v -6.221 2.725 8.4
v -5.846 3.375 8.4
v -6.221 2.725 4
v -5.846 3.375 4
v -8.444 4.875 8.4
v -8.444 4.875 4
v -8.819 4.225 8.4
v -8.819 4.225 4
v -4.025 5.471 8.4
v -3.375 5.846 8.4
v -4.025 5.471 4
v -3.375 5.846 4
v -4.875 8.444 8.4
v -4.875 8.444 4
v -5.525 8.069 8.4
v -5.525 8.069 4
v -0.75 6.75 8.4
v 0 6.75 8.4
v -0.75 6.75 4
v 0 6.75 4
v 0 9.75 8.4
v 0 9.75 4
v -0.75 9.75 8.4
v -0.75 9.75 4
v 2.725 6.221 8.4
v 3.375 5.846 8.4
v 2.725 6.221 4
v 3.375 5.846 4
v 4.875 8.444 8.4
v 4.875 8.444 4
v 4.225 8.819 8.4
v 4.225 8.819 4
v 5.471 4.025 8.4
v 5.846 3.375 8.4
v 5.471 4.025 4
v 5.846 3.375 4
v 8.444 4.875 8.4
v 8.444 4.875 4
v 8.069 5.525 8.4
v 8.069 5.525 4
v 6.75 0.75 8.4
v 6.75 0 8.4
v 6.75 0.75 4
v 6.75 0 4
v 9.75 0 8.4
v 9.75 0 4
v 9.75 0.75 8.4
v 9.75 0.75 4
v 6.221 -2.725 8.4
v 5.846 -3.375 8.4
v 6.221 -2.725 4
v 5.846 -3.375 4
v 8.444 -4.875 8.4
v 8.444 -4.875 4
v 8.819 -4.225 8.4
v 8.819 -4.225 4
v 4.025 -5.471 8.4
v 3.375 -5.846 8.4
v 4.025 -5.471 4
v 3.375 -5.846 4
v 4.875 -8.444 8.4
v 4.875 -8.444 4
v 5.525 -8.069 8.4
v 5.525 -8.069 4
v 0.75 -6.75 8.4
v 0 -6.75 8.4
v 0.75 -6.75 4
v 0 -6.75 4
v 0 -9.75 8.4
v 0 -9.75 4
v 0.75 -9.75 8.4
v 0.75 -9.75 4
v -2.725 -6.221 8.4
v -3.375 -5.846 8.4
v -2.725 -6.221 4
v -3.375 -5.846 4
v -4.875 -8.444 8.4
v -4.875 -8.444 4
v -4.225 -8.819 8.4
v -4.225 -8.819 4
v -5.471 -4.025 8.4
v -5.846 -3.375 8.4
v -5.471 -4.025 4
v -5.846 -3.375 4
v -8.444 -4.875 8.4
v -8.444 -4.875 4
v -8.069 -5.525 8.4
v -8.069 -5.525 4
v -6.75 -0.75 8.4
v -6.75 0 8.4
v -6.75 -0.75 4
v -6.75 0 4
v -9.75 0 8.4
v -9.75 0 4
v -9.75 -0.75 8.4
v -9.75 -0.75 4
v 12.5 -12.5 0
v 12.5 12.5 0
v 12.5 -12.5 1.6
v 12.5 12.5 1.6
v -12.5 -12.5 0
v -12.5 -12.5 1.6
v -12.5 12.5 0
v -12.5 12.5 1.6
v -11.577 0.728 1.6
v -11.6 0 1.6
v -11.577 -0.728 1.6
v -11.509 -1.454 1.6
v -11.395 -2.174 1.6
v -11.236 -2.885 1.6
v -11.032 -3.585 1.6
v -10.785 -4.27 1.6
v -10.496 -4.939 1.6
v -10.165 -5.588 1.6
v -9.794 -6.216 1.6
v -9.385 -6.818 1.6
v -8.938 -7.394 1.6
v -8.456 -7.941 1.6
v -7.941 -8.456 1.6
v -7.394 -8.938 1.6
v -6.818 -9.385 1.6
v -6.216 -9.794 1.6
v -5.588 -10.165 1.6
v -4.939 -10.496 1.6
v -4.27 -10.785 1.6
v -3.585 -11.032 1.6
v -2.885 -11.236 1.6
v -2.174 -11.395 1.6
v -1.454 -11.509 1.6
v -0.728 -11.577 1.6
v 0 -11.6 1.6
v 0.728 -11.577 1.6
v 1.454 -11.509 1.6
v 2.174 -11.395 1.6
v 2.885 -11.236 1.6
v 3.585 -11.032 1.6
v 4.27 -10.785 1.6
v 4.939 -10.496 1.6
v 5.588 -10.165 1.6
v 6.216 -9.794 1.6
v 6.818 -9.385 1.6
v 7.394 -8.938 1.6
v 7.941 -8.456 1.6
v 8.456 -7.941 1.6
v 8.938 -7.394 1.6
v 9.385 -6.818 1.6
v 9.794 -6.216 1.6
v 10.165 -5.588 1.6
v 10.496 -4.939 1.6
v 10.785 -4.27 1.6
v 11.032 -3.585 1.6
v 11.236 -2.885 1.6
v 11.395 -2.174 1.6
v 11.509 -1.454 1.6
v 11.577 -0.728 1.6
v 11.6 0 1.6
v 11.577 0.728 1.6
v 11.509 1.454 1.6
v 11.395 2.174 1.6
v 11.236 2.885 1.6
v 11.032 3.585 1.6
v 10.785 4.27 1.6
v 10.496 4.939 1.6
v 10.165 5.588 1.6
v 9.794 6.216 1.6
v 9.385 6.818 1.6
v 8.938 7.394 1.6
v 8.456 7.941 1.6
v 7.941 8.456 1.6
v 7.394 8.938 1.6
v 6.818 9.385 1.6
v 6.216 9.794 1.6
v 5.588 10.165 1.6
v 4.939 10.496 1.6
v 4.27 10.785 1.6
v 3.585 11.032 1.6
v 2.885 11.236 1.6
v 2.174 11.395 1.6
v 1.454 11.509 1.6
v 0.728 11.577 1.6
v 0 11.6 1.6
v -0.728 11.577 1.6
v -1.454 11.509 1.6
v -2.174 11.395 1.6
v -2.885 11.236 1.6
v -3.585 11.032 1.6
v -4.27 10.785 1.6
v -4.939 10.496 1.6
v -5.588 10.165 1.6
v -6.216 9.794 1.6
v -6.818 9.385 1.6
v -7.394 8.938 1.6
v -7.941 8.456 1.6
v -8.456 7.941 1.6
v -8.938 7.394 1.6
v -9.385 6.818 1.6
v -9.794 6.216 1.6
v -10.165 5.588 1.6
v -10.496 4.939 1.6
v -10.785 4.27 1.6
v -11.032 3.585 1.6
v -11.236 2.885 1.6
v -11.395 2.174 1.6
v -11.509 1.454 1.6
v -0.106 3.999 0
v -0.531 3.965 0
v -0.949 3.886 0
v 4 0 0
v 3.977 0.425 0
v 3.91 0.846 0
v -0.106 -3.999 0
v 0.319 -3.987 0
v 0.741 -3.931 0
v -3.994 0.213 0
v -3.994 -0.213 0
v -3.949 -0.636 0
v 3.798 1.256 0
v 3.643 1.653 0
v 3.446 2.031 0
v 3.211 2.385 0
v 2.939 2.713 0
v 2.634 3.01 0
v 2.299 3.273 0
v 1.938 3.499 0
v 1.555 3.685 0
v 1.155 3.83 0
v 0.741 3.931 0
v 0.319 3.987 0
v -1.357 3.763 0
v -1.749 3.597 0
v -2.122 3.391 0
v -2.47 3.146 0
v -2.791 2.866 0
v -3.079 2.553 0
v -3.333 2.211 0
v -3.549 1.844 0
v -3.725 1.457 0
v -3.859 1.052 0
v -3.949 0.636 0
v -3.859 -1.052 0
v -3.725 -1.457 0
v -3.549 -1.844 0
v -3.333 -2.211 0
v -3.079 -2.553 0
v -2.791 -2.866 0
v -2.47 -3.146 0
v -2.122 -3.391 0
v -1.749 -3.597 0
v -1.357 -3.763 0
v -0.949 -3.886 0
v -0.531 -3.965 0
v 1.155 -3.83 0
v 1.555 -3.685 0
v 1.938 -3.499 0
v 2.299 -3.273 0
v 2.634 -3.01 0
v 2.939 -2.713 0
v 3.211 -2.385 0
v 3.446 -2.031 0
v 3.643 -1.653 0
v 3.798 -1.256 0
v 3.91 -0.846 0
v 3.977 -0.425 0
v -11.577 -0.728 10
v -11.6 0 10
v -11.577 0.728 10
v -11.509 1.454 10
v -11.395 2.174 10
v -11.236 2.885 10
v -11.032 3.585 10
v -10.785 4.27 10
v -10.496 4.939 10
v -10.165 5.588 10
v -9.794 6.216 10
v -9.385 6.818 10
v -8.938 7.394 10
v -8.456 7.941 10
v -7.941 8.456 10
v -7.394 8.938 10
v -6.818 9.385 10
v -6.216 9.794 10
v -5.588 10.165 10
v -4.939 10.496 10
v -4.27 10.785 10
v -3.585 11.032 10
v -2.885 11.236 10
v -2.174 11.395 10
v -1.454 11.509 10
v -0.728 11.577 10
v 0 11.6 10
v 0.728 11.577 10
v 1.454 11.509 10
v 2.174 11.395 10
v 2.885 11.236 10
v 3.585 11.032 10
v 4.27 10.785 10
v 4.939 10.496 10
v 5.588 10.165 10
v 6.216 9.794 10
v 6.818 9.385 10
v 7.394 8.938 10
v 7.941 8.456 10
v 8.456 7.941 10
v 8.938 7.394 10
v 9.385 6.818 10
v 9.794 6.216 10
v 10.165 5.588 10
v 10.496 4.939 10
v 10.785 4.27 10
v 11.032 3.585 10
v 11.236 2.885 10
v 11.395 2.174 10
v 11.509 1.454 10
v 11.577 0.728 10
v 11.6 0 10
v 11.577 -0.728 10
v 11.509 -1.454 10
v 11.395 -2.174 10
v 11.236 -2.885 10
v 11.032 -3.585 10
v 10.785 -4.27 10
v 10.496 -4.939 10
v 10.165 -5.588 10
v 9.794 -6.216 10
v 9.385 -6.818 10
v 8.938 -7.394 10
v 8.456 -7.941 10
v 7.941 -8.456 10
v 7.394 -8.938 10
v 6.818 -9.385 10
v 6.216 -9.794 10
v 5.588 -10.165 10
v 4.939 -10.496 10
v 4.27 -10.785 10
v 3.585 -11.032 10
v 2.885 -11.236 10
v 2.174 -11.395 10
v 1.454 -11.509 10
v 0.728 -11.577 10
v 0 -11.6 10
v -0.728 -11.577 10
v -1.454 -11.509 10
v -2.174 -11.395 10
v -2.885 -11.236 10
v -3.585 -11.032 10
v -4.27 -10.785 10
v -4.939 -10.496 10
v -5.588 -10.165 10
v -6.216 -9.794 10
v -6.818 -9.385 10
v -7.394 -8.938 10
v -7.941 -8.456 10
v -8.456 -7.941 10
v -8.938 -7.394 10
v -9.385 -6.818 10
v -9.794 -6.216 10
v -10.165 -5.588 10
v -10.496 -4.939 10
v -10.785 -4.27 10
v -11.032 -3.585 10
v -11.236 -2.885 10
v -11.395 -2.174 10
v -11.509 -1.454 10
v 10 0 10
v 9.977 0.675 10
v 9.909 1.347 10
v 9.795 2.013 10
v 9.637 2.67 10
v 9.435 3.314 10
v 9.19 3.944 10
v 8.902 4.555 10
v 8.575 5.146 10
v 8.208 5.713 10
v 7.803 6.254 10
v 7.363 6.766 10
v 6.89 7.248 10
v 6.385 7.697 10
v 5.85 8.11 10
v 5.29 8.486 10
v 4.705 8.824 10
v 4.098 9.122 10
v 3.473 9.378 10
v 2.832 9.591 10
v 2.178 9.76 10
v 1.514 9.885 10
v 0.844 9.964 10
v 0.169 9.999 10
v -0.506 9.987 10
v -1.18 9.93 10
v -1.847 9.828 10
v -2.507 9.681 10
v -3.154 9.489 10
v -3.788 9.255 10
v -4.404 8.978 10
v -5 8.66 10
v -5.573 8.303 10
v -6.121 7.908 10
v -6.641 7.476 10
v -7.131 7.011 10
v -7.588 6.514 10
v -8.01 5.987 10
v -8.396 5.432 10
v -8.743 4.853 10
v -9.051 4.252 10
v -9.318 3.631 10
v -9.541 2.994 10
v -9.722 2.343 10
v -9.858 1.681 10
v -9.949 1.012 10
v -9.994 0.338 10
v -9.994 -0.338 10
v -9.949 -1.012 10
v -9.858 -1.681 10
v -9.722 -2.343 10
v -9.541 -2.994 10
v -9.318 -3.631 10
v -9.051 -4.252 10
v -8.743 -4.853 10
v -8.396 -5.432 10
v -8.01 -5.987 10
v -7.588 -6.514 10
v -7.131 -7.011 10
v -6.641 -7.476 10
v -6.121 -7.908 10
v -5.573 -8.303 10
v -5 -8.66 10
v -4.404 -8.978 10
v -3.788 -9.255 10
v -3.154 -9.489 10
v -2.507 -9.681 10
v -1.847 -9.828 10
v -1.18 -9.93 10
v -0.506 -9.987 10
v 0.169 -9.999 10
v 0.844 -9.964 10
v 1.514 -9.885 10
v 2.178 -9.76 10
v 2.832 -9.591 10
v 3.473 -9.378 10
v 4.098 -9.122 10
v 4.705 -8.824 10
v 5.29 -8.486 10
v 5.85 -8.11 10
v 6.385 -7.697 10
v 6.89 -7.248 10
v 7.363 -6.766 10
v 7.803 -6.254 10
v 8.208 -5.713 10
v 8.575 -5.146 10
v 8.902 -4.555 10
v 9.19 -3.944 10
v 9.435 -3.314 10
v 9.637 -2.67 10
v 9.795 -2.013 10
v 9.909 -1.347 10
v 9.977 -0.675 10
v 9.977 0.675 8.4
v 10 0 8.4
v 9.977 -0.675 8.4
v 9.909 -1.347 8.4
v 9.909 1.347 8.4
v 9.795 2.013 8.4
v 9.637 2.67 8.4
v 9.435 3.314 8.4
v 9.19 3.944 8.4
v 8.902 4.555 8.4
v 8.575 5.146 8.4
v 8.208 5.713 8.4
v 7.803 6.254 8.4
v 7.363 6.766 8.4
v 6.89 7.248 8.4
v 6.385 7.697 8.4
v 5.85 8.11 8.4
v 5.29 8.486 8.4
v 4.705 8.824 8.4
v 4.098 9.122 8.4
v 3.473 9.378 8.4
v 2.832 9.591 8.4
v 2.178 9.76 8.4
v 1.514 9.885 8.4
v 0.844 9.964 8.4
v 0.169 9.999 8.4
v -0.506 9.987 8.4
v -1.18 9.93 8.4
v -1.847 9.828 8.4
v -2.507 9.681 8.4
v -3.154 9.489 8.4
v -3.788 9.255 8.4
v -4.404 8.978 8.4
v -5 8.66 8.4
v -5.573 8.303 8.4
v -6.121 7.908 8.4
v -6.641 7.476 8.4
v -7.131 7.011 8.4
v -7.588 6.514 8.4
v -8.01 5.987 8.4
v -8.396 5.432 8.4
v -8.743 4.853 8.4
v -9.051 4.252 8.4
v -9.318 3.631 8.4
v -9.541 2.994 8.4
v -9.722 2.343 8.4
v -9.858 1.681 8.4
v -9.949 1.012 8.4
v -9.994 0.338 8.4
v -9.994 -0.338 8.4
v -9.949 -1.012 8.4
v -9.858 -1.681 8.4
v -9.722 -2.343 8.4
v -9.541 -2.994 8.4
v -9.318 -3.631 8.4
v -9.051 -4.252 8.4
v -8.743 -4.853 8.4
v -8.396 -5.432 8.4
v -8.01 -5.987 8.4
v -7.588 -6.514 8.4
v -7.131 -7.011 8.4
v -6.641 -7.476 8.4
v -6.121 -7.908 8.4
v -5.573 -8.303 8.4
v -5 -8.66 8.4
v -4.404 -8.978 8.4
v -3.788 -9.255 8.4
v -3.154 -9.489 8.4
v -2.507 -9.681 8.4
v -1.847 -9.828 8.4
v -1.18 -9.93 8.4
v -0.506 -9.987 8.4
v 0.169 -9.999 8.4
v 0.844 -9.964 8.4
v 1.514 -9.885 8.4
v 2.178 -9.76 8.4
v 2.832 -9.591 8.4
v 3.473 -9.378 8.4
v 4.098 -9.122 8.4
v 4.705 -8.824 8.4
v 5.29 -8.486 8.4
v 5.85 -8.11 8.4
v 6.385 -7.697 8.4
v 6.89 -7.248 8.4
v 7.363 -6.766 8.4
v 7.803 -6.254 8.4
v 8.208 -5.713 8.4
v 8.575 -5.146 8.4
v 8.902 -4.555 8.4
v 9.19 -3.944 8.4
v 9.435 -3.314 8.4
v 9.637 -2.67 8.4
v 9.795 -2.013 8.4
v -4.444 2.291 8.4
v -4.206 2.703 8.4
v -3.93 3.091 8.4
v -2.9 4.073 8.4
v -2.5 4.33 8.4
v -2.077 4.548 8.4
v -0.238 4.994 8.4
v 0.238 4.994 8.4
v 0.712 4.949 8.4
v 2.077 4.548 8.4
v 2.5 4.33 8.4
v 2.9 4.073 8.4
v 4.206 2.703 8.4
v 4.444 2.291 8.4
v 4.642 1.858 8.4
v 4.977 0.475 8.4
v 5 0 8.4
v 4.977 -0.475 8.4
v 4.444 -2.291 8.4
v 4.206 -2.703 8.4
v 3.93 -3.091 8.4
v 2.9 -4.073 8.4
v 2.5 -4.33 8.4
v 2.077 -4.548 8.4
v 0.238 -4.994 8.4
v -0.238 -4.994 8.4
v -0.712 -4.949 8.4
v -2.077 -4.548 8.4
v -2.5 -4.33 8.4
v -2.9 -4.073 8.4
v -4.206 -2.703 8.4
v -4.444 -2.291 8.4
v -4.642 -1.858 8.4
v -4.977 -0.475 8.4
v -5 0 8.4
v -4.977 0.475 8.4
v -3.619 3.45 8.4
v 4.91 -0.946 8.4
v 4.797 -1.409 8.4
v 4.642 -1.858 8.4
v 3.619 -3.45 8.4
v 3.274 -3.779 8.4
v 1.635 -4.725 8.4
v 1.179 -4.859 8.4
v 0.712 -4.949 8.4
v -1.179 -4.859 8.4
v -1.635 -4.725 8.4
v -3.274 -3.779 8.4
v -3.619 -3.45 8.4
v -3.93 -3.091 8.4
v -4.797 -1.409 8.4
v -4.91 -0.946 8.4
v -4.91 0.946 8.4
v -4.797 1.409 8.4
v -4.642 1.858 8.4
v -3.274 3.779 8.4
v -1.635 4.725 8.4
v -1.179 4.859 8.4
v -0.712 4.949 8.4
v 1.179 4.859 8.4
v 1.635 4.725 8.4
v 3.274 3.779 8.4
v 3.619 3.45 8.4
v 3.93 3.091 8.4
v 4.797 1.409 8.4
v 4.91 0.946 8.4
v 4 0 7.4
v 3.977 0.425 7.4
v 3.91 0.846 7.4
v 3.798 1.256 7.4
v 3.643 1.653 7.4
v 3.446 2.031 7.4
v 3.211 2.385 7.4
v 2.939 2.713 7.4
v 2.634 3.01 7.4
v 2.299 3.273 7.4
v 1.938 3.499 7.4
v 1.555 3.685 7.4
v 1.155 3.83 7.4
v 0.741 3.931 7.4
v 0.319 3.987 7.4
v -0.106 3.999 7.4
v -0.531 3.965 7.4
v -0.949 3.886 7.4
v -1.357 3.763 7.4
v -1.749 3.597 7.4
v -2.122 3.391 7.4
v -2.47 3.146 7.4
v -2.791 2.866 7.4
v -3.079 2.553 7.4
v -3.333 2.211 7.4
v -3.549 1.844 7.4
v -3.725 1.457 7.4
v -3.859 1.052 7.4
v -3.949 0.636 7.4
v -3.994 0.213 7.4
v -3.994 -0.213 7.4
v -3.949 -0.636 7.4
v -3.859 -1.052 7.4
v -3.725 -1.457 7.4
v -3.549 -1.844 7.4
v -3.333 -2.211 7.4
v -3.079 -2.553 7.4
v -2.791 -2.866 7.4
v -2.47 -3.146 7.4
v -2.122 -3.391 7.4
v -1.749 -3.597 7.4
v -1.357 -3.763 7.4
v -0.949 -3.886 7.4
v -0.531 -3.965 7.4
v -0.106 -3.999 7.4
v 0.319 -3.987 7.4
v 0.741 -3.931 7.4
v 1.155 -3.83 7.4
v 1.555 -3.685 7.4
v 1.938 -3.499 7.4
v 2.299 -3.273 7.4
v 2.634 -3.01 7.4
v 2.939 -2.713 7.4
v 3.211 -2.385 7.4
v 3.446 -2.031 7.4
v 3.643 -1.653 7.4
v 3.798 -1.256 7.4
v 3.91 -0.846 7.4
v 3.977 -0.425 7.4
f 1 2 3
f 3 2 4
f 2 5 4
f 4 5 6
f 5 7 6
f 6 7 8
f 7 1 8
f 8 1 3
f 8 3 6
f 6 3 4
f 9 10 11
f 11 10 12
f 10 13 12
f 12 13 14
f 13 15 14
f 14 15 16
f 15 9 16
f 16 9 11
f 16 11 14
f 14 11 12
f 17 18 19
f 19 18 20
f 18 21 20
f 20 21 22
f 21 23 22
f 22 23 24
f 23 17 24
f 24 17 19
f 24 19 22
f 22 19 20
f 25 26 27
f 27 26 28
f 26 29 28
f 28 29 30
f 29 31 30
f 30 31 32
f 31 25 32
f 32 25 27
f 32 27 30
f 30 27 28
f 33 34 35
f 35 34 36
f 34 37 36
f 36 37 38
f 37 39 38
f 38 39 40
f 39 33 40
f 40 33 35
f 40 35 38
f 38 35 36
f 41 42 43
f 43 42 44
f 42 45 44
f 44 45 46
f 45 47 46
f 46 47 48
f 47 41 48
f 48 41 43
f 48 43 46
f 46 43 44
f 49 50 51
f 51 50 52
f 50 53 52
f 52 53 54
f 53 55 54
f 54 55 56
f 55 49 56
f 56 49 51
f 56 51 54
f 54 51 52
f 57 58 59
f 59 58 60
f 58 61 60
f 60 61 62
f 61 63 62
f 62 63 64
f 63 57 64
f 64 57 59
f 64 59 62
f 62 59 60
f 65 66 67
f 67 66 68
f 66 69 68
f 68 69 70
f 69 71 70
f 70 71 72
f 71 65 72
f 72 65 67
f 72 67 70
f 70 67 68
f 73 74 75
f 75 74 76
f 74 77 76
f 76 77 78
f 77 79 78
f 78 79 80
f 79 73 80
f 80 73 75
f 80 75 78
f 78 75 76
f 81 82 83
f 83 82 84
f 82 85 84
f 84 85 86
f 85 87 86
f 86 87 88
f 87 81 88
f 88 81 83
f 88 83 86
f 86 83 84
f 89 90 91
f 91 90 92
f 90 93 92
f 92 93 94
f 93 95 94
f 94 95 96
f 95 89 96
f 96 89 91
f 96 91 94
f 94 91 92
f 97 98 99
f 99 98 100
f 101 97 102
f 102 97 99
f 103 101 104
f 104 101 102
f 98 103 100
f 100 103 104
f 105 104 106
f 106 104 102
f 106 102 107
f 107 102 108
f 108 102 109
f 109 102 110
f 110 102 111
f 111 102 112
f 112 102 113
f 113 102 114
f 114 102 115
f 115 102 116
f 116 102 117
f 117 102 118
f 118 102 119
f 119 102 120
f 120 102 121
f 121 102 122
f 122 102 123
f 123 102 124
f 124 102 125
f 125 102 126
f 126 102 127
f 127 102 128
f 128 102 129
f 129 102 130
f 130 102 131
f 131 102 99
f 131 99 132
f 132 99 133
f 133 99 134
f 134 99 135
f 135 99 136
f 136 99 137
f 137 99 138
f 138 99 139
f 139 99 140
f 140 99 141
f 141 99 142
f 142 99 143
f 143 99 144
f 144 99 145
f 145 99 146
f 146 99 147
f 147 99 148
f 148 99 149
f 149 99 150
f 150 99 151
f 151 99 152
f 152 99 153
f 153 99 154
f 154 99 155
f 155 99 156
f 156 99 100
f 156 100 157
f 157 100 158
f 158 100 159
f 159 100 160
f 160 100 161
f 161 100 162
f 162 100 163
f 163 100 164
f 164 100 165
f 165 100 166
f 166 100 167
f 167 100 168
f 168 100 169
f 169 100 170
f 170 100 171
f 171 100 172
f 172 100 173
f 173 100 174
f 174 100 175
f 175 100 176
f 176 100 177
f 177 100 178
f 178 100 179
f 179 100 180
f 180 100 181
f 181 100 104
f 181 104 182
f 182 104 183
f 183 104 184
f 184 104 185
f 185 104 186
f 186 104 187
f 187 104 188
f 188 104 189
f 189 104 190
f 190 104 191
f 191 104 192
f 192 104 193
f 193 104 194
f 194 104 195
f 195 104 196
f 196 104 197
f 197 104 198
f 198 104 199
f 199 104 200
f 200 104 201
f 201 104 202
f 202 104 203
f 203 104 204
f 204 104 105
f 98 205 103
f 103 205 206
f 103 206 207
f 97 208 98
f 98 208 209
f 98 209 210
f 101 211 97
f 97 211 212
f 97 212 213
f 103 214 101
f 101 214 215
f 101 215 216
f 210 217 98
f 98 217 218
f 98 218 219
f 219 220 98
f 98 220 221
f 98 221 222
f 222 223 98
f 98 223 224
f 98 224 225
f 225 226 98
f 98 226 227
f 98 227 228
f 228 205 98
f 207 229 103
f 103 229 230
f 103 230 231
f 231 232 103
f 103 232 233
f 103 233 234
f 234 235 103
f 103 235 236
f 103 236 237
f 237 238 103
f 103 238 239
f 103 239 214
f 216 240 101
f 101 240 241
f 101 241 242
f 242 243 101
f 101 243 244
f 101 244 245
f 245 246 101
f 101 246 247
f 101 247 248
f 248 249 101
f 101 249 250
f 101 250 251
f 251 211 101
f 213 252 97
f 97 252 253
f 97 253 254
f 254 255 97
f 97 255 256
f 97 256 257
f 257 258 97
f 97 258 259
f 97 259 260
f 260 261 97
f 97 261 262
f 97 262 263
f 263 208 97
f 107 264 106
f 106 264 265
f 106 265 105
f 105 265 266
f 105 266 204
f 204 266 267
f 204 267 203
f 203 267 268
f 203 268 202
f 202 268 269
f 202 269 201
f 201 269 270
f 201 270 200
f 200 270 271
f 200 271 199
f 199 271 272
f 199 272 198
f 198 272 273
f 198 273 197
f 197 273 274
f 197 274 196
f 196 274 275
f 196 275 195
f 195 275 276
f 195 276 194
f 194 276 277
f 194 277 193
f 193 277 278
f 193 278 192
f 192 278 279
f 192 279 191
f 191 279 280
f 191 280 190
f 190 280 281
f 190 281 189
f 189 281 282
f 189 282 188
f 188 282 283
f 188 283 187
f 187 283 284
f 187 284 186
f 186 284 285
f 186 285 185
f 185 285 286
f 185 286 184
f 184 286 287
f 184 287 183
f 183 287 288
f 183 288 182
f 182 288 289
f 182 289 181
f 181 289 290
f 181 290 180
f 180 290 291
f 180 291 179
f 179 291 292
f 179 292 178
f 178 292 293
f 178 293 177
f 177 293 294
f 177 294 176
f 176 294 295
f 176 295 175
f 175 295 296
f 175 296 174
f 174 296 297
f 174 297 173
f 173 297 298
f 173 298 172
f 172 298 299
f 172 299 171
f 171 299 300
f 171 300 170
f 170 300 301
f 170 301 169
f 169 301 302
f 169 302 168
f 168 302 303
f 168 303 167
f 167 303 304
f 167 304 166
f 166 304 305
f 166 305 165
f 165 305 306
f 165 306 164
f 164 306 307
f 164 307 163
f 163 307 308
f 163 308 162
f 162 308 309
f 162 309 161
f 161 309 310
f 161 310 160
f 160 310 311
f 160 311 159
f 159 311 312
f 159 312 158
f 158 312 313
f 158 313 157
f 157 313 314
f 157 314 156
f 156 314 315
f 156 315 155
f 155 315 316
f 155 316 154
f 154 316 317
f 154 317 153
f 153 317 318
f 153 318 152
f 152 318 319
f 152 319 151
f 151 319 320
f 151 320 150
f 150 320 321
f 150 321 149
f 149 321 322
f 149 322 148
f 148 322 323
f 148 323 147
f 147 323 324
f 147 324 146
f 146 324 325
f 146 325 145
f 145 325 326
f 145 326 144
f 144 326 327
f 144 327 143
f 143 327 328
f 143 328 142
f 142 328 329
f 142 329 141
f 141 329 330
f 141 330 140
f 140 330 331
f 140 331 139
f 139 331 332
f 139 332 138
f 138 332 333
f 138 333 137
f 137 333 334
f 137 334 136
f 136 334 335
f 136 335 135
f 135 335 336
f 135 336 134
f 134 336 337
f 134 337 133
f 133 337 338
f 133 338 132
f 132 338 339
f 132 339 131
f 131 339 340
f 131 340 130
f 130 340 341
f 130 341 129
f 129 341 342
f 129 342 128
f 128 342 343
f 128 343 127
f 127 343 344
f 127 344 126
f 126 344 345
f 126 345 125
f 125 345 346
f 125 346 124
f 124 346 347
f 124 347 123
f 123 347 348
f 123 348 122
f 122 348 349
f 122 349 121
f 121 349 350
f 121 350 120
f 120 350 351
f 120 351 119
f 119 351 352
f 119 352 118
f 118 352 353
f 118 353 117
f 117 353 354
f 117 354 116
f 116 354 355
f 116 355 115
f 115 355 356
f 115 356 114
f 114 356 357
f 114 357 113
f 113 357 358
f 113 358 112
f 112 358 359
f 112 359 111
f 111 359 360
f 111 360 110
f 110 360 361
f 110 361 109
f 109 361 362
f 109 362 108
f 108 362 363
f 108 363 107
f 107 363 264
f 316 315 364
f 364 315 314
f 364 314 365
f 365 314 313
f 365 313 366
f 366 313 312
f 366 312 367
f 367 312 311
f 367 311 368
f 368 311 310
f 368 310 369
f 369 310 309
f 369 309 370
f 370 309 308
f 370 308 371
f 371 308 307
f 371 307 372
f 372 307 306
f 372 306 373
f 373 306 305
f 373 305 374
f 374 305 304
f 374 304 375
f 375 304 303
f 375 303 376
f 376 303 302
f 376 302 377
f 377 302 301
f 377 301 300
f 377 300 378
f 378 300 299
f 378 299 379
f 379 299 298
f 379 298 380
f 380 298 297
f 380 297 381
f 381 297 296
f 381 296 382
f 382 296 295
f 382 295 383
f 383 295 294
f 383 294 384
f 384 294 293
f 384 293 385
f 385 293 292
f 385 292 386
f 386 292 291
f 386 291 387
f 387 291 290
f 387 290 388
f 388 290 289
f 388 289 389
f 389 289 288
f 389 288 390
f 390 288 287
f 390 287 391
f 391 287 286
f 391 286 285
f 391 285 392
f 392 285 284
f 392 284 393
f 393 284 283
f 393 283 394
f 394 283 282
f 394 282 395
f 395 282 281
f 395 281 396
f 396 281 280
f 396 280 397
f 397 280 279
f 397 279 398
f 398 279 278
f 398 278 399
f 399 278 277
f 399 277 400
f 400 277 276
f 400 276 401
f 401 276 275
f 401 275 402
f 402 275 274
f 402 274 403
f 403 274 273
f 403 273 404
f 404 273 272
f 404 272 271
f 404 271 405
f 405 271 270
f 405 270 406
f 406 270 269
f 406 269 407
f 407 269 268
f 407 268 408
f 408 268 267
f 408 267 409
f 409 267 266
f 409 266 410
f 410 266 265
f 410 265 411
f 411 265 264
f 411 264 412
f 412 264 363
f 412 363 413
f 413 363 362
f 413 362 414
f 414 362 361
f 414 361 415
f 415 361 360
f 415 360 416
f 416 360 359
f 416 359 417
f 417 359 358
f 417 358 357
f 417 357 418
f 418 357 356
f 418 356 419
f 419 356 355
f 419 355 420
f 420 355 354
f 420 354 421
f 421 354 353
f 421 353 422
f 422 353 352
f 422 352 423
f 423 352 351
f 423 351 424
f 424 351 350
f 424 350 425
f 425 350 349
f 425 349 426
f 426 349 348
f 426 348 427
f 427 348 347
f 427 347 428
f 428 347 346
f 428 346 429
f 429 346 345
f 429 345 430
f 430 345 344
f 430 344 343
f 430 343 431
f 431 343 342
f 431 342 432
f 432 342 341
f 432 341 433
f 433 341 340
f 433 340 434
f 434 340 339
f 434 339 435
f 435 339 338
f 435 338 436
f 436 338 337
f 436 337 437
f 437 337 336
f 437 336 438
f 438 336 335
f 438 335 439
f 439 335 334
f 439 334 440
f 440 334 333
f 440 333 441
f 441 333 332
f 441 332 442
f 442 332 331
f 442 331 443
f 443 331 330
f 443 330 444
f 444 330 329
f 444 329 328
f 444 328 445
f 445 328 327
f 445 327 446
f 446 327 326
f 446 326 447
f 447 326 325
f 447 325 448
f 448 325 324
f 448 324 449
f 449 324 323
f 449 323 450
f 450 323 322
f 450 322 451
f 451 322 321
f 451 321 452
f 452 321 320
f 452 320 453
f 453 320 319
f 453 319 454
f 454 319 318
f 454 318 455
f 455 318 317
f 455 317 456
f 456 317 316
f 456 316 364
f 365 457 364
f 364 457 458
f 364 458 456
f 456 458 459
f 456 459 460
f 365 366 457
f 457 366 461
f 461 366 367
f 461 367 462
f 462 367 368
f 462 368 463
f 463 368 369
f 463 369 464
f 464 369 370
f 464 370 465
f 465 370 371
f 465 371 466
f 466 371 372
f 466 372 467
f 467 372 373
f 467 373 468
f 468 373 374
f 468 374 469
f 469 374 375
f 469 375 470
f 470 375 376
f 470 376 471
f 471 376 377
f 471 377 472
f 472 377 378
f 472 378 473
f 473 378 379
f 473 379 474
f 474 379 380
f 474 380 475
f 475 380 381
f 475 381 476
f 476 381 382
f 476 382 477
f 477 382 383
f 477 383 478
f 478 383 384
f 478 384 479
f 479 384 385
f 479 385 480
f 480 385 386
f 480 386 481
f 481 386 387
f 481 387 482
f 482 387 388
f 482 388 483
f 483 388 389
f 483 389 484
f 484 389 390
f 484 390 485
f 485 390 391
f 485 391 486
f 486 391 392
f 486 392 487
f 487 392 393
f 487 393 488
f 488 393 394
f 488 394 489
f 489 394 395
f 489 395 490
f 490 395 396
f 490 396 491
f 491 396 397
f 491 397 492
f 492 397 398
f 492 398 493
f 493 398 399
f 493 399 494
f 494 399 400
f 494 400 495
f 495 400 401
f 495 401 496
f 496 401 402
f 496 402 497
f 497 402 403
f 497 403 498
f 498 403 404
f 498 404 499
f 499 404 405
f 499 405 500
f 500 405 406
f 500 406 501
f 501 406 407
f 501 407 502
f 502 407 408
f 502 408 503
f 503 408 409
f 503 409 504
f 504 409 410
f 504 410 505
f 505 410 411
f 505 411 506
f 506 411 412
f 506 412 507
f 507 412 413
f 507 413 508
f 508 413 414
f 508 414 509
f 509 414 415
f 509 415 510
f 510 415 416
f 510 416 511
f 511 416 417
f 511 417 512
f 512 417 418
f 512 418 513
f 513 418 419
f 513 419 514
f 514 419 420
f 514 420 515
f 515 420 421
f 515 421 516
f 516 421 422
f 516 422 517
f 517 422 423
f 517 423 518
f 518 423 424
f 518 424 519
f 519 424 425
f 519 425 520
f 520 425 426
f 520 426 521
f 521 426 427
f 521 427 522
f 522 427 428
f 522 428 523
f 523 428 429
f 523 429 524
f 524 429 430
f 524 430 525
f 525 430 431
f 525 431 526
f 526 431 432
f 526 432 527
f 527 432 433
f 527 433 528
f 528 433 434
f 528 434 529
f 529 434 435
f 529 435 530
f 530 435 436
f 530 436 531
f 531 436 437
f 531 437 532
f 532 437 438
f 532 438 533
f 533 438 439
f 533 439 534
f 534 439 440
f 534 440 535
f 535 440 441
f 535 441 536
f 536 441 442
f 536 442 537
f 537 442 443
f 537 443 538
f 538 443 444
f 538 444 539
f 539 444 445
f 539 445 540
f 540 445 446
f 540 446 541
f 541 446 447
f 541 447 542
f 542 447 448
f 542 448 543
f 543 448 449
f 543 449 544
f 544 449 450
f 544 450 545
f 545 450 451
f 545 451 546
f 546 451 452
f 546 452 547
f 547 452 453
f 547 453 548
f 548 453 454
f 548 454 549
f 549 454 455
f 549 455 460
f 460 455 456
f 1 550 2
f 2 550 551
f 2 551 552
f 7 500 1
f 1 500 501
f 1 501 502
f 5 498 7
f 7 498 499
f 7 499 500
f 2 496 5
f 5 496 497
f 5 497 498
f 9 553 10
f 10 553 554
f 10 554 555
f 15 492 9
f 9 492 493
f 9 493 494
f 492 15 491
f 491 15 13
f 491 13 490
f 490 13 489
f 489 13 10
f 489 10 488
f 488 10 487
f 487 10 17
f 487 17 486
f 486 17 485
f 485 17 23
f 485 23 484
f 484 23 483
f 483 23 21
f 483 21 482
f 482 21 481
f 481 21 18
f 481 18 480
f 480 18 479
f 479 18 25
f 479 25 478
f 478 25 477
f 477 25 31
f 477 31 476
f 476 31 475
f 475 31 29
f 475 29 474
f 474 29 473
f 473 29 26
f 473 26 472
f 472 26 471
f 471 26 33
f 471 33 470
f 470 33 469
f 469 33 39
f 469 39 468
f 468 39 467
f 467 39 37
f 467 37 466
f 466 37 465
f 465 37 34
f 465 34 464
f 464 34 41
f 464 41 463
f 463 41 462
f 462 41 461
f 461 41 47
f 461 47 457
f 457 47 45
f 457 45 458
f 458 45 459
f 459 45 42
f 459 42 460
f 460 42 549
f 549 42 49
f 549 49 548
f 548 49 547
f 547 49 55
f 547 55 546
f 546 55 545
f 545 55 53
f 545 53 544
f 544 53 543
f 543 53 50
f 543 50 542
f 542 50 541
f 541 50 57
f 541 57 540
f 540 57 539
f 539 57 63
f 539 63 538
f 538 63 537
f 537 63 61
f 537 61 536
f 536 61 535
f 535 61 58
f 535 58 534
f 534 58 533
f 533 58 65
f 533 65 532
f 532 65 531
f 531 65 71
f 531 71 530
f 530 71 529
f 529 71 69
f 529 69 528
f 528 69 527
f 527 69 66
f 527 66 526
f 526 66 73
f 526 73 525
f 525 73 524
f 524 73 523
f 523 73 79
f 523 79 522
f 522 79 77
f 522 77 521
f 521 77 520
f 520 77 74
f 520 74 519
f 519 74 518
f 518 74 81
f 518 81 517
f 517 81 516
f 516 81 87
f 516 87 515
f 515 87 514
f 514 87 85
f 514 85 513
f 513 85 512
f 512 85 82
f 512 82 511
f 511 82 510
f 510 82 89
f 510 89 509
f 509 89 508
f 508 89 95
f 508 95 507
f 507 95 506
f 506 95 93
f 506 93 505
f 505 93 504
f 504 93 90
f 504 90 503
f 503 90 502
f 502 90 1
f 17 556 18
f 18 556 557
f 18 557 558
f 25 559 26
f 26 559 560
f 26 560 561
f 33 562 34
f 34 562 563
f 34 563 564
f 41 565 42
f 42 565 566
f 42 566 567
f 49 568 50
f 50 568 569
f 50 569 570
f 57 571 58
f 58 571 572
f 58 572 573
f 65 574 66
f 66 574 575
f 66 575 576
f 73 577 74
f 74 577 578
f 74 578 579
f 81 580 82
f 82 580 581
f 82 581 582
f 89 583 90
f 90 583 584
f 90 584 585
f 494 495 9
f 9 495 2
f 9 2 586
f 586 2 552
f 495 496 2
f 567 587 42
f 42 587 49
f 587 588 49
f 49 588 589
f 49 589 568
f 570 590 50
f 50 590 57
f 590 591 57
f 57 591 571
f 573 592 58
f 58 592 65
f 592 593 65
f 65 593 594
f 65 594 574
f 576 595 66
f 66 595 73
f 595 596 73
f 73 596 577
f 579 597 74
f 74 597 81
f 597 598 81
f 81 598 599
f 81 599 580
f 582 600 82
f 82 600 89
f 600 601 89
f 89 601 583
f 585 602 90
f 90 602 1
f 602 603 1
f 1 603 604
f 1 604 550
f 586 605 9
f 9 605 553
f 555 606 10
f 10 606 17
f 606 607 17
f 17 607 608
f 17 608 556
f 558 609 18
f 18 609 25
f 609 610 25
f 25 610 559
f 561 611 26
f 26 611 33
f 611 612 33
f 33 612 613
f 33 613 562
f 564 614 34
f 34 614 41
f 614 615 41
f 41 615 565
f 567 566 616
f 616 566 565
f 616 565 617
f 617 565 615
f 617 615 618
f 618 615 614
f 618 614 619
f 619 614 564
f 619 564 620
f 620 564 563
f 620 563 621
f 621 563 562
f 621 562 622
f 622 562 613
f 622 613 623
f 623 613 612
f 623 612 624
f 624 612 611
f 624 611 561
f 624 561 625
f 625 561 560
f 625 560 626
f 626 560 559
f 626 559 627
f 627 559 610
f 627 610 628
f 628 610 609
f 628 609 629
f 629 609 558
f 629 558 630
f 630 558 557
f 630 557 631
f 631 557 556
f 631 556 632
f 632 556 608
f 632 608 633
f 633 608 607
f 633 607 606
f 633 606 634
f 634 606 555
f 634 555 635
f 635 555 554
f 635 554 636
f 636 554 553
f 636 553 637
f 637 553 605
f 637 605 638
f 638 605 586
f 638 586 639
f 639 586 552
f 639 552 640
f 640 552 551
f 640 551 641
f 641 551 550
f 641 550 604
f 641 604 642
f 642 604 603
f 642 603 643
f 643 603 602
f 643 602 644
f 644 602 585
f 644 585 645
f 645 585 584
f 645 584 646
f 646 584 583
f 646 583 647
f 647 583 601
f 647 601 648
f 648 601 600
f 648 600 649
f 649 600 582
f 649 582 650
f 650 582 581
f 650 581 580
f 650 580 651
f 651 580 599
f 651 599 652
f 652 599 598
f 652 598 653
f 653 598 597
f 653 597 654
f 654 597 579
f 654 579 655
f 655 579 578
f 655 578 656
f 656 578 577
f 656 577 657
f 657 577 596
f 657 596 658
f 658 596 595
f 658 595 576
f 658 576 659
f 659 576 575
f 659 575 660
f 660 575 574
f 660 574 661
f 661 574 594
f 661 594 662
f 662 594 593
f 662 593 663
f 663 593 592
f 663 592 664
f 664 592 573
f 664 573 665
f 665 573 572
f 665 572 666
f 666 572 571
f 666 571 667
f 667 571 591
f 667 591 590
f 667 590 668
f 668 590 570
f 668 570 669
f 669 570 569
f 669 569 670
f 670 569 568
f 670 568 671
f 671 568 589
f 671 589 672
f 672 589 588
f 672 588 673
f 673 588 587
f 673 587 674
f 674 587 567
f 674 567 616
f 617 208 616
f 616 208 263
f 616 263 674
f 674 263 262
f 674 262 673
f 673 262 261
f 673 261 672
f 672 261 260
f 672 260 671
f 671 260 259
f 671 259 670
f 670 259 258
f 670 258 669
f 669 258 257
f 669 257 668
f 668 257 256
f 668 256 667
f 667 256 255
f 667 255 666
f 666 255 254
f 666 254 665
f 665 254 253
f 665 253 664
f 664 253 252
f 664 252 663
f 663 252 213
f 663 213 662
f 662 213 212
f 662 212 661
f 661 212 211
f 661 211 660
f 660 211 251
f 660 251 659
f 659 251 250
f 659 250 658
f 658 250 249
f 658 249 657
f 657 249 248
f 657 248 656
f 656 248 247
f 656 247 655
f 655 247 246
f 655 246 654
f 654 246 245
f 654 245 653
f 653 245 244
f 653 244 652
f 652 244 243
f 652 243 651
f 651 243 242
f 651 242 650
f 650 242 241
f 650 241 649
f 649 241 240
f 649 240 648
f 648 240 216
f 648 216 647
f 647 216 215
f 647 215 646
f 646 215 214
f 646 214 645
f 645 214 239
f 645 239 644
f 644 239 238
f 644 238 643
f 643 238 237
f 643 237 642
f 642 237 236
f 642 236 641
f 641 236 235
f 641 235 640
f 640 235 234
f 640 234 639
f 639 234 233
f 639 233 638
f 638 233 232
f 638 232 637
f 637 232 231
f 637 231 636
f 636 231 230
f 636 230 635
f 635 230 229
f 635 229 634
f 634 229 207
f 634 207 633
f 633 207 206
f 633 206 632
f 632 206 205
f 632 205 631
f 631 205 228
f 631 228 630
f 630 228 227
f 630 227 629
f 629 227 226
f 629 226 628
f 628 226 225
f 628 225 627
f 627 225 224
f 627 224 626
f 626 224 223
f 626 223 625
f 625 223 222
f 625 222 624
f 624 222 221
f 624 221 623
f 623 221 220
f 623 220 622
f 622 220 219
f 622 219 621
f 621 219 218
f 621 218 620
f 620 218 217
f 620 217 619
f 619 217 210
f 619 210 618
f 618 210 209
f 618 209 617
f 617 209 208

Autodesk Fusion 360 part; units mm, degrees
sketch "Sketch1" plane through (0, 0, 0) normal (0, 1, 0) x (1, 0, 0)
  line L0 (0, 0) -> (11.6, 0)
  line L1 (11.6, 0) -> (11.6, -10)
  line L2 (11.6, -10) -> (0, -10)
  line L3 (0, -10) -> (0, 0)
  line L4 (10, -10) -> (0, -10)
  line L5 (0, -10) -> (0, -8.4)
  line L6 (0, -8.4) -> (10, -8.4)
  line L7 (10, -8.4) -> (10, -10)
  line L8 (4, -8.4) -> (0, -8.4)
  line L9 (0, -8.4) -> (0, 0)
  line L10 (0, 0) -> (4, 0)
  line L11 (4, 0) -> (4, -8.4)
  line L12 (4, -7.4) -> (5, -8.4)
  dimension "d1" = 1.6
  dimension "d2" = 1.6
  dimension "d3" = 10
  dimension "d5" = 8.4
  dimension "d6" = 4
  dimension "d8" = 1
  dimension "d9" = 45
revolve "Revolve1" add sketch "Sketch1" angle 360 about axis through (0, 0, 10) along (0, 0, -1) contours L0 L1 L2 L6 L7 L11 L12
sketch "Sketch2" plane through (0, 0, 0) normal (0, 0, -1) x (1, 0, 0)
  circle A0 centre (0, 0) radius 4
  circle A1 centre (0, 0) radius 11.6
  line L0 (-12.5, 12.5) -> (12.5, 12.5)
  line L1 (12.5, 12.5) -> (12.5, -12.5)
  line L2 (12.5, -12.5) -> (-12.5, -12.5)
  line L3 (-12.5, -12.5) -> (-12.5, 12.5)
  line L4 (-12.5, 12.5) -> (12.5, -12.5) construction
  line L5 (12.5, 12.5) -> (-12.5, -12.5) construction
  dimension "d10" = 25
extrude "Extrude1" add sketch "Sketch2" against normal blind 1.6 contours L0 L1 L2 L3
sketch "Sketch3" plane through (0, 0, 8.4) normal (0, 0, 1) x (-1, 0, 0)
  circle A0 centre (0, 0) radius 10
  circle A1 centre (0, 0) radius 5
  line L0 (9.75, 0) -> (6.75, 0)
  line L1 (6.75, 0) -> (6.75, 0.75)
  line L2 (6.75, 0.75) -> (9.75, 0.75)
  line L3 (9.75, 0.75) -> (9.75, 0)
  dimension "d13" = 3
  dimension "d14" = 6.75
  dimension "d15" = 0.75
extrude "Extrude2" cut sketch "Sketch3" against normal blind 4.4 contours L0 L1 L2 L3
pattern_circular "C-Pattern1" count 12 over 360 about axis through (0, 0, 0) along (0, 0, 1) of "Extrude2"
